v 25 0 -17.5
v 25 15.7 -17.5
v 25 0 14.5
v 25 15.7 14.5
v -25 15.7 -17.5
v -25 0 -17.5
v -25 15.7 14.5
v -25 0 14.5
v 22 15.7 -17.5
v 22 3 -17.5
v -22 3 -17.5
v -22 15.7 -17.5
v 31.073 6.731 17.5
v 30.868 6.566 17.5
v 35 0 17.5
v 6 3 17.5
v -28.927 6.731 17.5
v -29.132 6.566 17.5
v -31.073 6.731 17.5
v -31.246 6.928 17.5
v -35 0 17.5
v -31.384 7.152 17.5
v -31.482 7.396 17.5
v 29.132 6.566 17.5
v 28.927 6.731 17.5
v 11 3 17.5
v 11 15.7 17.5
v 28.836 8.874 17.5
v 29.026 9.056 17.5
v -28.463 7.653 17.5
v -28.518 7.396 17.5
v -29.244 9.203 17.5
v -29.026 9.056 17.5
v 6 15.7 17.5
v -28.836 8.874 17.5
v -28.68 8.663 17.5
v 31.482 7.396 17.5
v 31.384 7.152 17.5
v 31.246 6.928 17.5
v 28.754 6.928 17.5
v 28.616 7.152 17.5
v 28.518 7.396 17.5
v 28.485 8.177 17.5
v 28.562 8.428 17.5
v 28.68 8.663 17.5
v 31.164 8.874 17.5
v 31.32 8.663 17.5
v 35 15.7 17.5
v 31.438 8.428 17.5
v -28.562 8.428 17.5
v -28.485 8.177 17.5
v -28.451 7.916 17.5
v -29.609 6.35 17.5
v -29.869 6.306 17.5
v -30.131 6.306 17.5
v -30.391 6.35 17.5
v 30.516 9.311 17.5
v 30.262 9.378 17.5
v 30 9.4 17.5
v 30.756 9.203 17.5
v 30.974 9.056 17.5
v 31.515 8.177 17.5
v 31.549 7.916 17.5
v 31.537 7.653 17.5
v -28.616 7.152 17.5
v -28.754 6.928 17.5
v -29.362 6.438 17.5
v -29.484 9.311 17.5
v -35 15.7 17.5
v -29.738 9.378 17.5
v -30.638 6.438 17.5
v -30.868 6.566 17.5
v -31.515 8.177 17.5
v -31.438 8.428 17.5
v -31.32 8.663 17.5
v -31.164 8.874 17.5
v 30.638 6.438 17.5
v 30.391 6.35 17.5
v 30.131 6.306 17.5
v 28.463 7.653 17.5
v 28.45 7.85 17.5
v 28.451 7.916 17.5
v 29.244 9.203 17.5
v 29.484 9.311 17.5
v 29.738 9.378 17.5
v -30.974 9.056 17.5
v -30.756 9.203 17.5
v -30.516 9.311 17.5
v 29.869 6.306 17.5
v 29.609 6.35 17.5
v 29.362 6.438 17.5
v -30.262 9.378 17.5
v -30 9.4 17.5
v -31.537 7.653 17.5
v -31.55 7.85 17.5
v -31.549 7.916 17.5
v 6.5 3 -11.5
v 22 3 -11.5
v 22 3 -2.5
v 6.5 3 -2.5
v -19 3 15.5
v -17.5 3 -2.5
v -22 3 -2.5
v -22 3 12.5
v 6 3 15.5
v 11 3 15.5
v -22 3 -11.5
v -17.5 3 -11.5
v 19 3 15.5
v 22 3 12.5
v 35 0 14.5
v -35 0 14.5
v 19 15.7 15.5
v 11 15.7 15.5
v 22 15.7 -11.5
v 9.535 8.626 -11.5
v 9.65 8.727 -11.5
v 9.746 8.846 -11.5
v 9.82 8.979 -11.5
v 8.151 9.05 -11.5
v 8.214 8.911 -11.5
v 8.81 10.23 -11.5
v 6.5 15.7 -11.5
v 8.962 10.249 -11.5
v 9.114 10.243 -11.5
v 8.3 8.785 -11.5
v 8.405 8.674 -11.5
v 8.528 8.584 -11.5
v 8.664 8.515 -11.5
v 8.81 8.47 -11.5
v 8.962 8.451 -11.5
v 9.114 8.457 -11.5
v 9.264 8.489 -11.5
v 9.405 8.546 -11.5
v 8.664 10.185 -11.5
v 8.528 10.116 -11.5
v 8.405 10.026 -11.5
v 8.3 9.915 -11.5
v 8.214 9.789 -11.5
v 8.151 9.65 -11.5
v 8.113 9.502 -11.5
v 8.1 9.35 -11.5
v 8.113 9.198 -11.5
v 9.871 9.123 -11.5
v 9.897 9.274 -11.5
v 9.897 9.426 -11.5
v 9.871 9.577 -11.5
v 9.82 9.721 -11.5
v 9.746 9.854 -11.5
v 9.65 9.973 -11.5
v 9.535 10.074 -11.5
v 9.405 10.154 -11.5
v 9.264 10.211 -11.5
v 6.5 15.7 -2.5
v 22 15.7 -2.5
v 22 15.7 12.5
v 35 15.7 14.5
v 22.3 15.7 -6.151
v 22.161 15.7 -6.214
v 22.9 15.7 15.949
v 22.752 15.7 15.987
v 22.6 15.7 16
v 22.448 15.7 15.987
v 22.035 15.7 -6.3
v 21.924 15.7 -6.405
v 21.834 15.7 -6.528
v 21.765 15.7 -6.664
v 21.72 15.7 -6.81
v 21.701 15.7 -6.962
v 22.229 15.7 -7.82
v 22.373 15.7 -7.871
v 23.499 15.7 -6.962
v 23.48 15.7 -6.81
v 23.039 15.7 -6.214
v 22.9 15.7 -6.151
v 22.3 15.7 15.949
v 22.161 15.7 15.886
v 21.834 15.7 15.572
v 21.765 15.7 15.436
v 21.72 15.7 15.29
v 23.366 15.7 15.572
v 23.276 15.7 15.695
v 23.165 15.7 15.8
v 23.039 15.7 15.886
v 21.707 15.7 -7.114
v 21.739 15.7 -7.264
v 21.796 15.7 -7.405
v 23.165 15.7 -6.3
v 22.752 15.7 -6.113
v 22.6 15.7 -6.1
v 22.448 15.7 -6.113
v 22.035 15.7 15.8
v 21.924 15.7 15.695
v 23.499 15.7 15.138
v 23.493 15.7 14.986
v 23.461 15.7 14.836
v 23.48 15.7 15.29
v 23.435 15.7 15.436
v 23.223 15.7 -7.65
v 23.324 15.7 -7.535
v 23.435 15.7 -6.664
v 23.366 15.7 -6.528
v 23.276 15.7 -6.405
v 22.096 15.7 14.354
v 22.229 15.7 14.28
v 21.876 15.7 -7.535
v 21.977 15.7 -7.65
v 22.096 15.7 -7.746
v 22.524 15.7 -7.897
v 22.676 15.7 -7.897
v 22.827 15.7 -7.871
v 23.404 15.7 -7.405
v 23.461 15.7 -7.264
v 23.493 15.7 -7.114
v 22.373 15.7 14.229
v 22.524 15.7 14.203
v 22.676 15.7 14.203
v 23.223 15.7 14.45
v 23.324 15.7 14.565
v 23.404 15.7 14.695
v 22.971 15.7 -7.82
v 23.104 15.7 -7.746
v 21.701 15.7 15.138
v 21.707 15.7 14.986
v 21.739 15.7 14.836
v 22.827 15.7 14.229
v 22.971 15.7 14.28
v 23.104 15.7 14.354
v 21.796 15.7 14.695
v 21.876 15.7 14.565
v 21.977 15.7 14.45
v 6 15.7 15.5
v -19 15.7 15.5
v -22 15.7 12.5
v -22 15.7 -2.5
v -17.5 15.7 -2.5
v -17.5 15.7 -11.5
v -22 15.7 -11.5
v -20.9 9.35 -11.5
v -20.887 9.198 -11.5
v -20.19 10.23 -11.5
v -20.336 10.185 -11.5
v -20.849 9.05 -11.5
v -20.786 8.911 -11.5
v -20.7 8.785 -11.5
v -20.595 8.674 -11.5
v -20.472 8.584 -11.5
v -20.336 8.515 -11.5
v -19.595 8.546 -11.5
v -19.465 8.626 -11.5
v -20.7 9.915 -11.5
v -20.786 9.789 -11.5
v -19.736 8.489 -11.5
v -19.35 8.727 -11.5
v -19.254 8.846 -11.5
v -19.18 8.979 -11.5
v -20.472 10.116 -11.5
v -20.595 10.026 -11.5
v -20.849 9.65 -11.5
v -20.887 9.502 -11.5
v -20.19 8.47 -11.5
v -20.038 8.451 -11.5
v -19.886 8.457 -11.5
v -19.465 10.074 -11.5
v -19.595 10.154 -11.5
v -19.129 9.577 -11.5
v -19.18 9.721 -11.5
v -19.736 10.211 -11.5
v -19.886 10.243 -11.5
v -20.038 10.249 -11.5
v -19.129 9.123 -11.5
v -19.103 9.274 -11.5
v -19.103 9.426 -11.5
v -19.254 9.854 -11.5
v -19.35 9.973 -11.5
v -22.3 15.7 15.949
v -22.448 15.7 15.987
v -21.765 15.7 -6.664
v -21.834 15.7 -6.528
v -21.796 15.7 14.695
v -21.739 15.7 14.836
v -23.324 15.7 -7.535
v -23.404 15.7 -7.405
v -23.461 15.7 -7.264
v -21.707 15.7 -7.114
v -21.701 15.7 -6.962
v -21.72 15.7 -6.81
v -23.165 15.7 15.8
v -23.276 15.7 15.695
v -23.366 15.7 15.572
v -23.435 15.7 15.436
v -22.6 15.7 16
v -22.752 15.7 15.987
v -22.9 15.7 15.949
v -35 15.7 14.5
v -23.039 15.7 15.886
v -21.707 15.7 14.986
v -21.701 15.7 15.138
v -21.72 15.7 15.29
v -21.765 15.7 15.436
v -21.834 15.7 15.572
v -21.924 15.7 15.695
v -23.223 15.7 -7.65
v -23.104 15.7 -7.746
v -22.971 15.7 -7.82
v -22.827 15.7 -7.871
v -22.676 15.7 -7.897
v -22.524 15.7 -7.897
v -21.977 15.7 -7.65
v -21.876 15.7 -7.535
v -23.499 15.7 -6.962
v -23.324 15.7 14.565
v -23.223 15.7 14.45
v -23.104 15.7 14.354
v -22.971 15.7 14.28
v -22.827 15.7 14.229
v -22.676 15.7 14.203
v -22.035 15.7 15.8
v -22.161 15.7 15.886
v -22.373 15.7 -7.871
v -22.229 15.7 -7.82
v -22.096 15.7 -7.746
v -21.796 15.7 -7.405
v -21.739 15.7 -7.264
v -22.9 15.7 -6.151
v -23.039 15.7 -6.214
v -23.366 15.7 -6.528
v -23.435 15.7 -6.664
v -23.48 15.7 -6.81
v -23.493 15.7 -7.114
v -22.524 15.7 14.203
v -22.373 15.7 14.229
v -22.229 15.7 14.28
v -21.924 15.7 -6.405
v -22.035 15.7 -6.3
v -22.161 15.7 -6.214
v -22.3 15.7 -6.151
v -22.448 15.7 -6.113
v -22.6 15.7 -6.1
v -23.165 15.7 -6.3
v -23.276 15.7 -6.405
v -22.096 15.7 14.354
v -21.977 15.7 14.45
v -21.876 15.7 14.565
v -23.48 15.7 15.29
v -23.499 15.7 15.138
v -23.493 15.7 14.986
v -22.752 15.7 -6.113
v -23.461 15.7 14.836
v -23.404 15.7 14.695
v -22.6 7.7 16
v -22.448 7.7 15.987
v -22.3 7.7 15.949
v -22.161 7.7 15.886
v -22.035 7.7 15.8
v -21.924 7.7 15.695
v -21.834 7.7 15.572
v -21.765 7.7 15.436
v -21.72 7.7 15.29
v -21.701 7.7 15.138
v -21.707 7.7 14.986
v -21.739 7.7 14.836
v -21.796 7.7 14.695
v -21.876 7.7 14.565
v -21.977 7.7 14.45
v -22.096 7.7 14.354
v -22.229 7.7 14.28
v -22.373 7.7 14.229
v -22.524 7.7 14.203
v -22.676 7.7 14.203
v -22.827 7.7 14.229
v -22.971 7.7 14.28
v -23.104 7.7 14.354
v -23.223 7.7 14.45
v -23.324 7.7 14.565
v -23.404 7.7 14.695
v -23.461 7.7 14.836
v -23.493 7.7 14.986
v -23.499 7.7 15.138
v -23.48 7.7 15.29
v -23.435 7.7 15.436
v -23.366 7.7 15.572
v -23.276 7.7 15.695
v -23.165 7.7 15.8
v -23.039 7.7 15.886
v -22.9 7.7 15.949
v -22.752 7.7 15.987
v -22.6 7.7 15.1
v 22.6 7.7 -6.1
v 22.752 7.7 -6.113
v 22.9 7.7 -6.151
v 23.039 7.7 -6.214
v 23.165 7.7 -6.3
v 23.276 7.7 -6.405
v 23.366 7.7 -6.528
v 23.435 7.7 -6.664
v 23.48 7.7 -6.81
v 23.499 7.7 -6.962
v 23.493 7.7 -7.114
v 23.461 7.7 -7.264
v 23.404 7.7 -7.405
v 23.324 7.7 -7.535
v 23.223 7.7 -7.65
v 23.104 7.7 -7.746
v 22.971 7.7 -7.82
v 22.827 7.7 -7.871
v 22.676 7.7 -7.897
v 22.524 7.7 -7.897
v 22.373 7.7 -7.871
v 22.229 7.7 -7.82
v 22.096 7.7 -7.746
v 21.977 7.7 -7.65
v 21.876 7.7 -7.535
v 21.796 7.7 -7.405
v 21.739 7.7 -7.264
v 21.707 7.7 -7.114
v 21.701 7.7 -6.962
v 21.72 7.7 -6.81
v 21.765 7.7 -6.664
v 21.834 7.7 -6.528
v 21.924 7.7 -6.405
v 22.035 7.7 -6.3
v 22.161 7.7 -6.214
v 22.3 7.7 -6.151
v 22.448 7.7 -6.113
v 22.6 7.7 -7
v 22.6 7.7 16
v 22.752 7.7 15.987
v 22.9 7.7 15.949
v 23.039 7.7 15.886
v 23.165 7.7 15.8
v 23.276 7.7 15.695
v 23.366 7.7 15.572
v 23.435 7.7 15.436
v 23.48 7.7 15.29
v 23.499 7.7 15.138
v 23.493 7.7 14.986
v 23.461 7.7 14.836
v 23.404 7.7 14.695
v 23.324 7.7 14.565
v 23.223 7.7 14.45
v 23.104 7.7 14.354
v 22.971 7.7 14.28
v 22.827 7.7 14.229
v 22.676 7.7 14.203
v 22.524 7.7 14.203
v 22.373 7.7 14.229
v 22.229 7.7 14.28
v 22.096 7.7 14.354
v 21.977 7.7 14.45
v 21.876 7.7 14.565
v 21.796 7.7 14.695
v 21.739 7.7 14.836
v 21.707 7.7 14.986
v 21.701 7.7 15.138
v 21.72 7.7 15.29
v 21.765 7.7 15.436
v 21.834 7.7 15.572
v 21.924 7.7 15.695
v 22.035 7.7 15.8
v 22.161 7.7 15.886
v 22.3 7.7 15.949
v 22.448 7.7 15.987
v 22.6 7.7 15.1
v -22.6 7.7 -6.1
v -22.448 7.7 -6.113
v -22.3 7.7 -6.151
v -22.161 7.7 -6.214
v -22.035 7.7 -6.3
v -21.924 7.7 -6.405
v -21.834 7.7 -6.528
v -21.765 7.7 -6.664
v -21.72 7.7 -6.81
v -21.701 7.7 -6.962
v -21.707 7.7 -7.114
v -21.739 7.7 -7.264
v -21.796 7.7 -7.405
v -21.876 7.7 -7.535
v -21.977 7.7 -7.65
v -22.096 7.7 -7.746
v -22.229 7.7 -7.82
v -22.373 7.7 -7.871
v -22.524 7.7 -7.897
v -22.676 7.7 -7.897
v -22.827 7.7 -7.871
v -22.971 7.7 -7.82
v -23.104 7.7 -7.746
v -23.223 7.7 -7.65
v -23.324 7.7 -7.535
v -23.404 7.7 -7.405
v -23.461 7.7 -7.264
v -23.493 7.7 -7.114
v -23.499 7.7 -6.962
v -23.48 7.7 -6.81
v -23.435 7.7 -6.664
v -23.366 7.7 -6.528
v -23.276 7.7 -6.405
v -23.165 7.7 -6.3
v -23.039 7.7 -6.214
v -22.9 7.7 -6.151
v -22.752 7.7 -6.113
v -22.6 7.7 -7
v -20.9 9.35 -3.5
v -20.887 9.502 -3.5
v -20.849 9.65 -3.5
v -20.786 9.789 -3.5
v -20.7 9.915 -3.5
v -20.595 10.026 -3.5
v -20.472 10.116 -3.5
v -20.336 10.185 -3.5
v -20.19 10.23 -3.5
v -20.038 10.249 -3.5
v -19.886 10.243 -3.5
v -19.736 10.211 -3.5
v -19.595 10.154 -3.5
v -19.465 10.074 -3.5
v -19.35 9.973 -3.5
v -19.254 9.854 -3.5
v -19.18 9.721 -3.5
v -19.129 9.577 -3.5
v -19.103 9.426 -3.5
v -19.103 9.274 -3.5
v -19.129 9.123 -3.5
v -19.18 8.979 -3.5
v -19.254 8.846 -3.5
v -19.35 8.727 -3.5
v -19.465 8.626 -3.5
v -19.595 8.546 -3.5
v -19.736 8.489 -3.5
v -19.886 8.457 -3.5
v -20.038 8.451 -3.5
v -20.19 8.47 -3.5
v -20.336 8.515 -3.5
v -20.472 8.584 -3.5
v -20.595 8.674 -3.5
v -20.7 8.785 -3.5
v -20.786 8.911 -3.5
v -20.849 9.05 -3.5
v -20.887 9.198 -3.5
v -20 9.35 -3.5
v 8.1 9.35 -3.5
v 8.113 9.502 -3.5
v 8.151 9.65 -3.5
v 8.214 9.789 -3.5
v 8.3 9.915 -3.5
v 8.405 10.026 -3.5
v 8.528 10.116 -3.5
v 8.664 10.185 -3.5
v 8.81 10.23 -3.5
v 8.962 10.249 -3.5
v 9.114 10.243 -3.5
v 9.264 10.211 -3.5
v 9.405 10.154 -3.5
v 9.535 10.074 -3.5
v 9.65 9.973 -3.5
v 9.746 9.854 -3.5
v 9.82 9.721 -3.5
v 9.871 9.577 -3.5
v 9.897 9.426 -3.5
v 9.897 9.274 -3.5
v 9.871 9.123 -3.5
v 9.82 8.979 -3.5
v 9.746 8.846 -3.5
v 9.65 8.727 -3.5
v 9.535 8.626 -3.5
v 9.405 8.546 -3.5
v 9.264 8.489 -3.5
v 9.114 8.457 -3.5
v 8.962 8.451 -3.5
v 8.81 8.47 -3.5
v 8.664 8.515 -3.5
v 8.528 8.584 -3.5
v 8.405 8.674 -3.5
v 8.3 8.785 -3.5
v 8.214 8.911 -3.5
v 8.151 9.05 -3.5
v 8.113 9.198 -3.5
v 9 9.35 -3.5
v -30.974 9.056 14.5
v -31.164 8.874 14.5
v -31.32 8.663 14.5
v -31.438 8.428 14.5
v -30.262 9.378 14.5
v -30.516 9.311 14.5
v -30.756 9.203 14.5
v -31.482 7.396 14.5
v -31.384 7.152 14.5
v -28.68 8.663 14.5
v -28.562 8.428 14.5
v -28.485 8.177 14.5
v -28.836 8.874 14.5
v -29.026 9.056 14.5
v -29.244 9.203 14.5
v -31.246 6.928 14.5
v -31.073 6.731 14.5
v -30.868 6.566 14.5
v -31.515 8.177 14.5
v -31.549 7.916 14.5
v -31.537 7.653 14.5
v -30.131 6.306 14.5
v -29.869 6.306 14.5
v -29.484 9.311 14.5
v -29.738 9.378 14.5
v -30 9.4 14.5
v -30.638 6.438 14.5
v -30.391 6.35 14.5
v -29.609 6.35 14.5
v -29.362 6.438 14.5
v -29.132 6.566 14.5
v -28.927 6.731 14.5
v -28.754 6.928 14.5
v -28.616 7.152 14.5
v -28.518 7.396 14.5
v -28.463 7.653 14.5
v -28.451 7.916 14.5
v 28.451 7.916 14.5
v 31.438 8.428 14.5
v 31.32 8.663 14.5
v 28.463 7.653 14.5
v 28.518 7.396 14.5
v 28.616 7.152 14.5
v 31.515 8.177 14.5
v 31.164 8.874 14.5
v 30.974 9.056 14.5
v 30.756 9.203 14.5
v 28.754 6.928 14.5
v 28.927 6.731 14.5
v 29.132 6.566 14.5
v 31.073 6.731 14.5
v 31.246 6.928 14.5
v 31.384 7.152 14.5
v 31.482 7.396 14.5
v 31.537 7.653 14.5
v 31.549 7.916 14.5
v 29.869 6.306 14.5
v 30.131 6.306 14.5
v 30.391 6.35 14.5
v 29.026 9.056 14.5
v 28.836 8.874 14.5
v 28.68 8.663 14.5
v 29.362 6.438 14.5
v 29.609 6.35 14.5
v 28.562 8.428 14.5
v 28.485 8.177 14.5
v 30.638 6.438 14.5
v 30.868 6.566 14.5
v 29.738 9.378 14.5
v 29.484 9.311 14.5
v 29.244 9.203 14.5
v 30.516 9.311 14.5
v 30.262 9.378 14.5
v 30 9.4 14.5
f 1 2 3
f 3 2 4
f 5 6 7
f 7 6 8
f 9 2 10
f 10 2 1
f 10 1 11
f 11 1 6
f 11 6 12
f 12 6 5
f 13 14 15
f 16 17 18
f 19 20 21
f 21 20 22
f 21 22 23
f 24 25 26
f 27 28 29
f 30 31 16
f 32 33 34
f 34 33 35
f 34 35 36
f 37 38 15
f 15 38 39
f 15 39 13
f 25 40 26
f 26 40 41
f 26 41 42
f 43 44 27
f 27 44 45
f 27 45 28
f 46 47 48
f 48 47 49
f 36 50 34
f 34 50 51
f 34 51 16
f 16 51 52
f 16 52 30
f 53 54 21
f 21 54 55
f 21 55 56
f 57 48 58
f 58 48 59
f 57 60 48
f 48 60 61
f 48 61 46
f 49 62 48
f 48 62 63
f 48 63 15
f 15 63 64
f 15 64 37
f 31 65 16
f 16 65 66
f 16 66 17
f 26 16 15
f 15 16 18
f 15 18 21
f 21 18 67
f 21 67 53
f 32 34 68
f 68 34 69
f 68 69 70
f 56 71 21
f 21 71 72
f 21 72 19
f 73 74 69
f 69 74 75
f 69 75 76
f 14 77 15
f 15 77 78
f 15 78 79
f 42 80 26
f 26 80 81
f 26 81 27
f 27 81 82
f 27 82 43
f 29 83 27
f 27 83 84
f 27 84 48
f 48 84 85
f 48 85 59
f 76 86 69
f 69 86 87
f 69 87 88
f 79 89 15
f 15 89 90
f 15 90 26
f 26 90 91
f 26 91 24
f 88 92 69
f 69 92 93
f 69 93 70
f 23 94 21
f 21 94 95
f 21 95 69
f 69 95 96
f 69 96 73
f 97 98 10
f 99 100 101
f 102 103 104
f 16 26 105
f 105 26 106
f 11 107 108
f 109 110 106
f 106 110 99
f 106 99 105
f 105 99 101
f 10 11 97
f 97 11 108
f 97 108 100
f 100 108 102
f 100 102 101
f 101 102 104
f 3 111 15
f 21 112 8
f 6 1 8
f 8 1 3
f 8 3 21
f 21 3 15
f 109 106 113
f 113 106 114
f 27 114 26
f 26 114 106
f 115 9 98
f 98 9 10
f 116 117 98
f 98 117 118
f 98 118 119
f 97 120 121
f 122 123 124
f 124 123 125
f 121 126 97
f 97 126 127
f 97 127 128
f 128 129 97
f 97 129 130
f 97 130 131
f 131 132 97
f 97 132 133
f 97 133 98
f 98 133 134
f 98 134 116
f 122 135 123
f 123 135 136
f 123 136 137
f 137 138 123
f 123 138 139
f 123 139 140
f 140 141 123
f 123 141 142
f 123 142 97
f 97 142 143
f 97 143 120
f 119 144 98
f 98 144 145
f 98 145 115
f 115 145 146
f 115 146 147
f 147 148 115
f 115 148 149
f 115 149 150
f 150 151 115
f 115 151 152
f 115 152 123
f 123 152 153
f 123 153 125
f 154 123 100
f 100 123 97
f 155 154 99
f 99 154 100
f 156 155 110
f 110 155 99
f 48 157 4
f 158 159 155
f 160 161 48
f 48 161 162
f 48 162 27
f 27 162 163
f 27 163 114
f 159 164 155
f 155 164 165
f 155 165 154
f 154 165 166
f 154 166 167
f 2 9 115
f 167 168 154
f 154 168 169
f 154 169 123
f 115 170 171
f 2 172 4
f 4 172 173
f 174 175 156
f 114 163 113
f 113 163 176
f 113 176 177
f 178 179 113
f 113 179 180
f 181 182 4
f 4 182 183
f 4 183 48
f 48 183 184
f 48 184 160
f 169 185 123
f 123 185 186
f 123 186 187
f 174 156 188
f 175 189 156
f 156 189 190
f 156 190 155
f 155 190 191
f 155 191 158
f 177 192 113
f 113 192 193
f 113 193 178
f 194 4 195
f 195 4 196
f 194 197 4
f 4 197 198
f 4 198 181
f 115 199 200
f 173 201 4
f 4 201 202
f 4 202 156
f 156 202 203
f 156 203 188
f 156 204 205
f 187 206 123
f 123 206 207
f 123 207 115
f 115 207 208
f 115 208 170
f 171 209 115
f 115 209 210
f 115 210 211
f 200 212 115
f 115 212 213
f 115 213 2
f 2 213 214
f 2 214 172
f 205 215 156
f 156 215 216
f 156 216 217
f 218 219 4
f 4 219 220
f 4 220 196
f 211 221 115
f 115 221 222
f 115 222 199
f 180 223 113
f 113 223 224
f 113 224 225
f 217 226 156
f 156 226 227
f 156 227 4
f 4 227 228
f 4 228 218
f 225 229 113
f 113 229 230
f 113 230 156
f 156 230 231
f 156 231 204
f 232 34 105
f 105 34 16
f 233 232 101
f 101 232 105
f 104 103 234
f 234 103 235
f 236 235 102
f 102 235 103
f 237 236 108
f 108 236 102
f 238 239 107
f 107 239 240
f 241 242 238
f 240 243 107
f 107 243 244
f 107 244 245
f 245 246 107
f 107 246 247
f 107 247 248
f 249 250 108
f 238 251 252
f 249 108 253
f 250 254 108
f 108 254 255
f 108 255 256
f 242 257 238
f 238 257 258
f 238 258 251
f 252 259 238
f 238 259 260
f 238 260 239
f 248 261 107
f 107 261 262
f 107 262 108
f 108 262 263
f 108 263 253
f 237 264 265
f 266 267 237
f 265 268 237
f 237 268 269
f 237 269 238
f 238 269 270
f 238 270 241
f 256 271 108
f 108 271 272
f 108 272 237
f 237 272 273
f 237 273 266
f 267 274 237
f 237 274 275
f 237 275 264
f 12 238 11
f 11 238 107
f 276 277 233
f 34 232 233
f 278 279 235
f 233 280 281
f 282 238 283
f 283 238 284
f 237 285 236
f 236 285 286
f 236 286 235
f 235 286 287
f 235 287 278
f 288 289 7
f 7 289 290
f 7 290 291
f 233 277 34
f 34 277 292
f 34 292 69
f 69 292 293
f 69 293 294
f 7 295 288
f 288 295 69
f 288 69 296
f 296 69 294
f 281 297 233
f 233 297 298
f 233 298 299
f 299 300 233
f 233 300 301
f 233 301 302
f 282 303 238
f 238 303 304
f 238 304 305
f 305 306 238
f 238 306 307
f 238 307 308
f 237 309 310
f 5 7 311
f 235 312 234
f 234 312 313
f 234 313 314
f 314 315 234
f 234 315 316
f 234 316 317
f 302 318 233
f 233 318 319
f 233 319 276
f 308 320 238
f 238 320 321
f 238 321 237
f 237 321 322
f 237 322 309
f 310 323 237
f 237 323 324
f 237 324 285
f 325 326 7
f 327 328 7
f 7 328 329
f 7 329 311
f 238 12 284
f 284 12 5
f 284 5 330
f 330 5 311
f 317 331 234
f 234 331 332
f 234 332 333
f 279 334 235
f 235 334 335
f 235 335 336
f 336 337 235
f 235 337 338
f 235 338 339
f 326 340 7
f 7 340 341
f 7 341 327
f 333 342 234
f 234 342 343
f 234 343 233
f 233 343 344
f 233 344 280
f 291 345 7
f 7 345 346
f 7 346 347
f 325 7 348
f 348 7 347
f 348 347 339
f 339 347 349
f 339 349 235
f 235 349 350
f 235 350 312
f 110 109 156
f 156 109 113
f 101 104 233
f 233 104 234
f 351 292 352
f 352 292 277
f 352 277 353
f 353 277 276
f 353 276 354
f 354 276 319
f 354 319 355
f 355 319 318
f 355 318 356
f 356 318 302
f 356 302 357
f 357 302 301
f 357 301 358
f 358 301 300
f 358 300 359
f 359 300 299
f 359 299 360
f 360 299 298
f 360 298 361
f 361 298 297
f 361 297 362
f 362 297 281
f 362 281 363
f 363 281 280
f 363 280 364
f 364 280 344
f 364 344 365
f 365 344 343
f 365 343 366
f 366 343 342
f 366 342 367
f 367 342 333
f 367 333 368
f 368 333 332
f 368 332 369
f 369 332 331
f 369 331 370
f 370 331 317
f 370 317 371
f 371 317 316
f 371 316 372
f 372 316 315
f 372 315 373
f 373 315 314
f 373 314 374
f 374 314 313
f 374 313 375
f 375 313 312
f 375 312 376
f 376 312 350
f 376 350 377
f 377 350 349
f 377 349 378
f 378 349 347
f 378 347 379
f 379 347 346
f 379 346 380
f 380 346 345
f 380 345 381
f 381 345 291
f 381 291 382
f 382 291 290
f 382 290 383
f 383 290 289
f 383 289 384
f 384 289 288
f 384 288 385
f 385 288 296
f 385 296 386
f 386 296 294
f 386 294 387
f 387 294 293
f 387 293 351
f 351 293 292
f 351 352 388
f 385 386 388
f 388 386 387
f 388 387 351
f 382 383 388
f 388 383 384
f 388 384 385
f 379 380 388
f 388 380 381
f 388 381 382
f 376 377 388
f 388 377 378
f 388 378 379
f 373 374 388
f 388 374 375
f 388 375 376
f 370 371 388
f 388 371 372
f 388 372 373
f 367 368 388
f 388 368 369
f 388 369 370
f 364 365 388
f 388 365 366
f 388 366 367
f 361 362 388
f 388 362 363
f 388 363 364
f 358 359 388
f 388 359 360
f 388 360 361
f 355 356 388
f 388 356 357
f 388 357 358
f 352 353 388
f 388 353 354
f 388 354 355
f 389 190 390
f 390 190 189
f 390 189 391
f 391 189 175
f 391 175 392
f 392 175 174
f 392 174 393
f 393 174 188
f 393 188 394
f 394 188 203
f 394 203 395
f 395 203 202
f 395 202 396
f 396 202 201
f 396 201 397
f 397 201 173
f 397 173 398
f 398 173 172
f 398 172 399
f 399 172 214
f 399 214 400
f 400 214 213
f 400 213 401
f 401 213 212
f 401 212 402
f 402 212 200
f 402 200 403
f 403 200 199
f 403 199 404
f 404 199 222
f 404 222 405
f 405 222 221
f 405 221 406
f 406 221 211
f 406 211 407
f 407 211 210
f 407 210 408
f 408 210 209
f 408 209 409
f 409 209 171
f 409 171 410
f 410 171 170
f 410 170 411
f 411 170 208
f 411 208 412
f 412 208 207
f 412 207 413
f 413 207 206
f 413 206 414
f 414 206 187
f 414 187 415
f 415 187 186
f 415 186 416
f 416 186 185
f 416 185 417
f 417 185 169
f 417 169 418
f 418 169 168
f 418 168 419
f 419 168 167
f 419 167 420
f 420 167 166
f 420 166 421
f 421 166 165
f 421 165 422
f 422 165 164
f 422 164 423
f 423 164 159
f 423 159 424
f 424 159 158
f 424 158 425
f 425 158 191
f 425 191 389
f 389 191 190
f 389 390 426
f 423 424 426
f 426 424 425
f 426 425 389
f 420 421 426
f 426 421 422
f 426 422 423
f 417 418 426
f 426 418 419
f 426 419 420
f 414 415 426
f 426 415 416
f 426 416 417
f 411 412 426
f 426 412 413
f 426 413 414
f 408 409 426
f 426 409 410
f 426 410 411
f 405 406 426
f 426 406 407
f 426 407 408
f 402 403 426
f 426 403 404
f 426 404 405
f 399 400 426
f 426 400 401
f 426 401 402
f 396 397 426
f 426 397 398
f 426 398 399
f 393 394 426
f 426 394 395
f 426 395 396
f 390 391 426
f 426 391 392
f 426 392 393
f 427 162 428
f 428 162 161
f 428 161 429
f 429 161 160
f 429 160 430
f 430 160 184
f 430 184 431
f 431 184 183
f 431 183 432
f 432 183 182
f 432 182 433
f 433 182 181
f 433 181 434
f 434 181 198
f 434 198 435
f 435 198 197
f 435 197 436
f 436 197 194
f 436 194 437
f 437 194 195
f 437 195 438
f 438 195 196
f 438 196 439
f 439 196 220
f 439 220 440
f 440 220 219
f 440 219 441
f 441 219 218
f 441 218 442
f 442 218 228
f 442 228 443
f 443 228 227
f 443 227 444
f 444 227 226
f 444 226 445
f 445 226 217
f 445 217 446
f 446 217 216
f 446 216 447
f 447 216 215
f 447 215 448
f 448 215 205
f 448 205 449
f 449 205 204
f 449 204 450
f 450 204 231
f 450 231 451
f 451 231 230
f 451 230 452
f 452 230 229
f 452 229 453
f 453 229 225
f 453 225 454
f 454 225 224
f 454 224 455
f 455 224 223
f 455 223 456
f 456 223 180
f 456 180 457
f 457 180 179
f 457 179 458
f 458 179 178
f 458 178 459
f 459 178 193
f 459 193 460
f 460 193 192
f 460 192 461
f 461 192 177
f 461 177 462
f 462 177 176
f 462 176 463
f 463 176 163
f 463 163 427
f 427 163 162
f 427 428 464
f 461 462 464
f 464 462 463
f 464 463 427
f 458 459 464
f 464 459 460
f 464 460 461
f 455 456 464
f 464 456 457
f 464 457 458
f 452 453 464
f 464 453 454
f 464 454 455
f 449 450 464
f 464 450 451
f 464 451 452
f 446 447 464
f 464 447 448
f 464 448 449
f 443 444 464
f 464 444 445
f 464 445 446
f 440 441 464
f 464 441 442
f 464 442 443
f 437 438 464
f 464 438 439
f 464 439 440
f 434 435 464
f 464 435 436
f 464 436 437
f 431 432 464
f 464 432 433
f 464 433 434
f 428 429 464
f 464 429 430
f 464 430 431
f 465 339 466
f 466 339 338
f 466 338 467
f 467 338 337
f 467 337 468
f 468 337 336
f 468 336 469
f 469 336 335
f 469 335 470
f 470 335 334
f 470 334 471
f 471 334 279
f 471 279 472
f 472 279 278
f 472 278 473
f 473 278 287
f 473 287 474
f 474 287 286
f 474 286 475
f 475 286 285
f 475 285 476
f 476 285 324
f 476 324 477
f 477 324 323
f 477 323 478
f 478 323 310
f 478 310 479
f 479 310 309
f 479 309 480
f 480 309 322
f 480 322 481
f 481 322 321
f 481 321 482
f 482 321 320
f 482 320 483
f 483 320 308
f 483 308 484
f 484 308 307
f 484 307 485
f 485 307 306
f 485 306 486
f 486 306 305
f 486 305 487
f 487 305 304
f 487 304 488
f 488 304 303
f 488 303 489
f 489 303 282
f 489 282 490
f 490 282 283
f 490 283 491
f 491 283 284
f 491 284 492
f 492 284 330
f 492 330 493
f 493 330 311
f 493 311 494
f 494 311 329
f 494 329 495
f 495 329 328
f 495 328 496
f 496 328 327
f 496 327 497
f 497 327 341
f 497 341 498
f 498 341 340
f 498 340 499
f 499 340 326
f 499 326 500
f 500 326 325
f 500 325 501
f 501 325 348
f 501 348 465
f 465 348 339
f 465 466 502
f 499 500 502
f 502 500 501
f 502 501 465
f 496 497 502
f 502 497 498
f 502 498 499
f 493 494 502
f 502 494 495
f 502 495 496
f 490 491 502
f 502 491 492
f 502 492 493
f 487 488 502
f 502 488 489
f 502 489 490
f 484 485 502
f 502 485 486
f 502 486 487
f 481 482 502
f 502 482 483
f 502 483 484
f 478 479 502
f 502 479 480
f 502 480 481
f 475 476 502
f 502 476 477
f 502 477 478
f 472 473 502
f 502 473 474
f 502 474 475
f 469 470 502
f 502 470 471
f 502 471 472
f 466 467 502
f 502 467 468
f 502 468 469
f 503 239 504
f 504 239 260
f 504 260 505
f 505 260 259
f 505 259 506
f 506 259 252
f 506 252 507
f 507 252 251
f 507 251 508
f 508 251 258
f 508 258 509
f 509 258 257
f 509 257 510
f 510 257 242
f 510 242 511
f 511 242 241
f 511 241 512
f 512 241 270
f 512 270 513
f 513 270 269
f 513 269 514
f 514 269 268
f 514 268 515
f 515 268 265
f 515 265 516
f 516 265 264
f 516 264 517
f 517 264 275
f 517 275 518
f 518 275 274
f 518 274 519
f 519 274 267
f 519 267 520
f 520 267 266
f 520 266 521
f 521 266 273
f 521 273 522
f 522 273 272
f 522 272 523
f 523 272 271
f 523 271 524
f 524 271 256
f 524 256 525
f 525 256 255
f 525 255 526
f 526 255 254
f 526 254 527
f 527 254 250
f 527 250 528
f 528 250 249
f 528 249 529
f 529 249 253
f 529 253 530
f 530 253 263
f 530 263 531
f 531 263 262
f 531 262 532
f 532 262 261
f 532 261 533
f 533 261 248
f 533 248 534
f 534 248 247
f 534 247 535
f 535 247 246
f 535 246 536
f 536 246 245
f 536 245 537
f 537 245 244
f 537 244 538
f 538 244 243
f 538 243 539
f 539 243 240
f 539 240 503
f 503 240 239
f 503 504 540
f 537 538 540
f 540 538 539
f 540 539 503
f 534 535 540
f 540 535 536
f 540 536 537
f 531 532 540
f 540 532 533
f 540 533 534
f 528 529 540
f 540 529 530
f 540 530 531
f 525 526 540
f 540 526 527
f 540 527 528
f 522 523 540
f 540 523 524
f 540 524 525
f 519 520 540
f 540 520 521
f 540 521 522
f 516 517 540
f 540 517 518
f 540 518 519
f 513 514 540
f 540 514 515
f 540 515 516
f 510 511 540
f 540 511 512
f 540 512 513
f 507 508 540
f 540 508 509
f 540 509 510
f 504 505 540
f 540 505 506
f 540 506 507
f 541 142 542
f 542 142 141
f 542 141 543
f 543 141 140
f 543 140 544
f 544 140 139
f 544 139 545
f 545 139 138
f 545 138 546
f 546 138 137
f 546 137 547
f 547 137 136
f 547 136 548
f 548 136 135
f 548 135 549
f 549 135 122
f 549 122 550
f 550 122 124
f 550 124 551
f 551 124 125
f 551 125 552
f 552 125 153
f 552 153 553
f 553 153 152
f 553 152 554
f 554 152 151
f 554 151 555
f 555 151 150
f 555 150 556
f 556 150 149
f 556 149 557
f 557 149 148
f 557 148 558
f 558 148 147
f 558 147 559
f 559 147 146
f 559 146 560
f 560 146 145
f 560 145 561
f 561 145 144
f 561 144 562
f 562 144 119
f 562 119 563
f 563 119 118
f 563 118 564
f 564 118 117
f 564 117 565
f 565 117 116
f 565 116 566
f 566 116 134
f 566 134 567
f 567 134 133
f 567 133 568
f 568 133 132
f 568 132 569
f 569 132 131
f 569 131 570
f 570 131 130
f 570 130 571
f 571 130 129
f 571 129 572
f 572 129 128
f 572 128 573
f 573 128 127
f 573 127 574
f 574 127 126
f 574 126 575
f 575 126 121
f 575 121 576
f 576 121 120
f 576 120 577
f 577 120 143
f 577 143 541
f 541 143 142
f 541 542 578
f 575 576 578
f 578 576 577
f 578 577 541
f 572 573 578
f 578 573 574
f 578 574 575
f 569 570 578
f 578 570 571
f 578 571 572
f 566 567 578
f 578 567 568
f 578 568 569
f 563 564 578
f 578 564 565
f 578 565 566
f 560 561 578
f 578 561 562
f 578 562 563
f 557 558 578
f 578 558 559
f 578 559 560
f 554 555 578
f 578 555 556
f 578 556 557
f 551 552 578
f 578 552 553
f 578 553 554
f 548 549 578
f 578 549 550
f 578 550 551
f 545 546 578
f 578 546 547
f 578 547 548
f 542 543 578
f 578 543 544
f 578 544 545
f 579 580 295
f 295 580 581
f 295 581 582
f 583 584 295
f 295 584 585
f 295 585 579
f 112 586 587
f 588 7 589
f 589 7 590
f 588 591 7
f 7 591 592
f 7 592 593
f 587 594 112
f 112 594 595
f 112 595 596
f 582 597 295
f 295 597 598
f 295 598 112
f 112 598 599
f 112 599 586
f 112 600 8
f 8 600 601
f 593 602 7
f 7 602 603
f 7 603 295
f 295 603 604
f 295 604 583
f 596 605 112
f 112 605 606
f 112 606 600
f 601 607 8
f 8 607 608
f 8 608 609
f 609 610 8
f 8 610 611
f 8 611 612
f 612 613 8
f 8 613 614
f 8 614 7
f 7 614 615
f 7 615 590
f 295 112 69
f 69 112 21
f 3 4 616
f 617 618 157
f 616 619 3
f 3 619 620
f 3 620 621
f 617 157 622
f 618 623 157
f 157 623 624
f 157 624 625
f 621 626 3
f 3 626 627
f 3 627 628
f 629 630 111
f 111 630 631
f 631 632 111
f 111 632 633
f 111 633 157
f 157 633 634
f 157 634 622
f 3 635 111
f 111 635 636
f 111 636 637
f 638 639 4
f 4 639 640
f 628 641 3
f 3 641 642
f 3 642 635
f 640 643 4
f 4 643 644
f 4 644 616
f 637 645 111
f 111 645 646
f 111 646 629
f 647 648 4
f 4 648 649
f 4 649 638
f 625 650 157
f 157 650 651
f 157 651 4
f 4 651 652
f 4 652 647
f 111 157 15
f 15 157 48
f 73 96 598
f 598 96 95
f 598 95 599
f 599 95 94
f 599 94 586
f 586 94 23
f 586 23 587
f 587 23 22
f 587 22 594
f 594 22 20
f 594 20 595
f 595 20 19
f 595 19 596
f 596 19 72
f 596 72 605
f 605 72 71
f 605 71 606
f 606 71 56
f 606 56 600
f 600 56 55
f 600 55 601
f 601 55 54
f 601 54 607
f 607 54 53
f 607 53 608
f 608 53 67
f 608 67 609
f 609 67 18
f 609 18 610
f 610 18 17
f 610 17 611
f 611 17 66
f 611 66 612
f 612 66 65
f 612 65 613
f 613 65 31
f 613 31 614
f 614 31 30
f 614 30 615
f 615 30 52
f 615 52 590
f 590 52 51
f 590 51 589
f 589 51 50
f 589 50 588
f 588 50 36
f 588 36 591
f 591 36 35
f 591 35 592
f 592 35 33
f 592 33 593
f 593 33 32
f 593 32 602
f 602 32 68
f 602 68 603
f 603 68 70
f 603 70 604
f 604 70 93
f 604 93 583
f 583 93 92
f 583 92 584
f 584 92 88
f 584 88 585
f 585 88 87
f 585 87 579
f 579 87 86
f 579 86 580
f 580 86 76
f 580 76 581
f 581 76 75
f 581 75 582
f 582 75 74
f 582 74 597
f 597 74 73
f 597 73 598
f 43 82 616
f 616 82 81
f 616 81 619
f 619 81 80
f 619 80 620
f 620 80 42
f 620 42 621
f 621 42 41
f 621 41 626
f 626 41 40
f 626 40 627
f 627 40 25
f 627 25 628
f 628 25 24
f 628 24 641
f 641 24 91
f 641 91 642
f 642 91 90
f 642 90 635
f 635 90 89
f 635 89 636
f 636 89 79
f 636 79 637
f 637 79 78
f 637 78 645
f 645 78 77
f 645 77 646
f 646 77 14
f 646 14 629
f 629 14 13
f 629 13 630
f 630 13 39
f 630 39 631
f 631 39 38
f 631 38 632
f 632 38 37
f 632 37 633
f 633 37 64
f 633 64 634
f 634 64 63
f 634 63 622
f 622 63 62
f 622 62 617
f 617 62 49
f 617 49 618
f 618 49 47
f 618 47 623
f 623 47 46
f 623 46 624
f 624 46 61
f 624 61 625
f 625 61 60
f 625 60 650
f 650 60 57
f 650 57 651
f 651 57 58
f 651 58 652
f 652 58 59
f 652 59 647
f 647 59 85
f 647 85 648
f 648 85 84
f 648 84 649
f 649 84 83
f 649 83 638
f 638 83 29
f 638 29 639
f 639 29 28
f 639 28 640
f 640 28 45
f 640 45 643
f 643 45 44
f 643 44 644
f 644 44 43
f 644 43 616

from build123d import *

# Parameters (mm, degrees)
SKETCH1_W           = 50
SKETCH1_H           = 35
BOSS_EXTRUDE1_DEPTH = 3
BOSS_EXTRUDE2_DEPTH = 12.7
CHAMFER1_SIZE       = 3
SKETCH3_R           = 0.9
CUT_EXTRUDE1_DEPTH  = 8
SKETCH4_R           = 0.9
CUT_EXTRUDE2_DEPTH  = 8
SKETCH5_R           = 0.9
CUT_EXTRUDE3_DEPTH  = 8
SKETCH6_W           = 3
SKETCH6_H           = 15.7
BOSS_EXTRUDE3_DEPTH = 10
SKETCH7_W           = 3
SKETCH7_H           = 15.7
BOSS_EXTRUDE4_DEPTH = 10
SKETCH8_R           = 1.55
CUT_EXTRUDE4_DEPTH  = 10


with BuildPart() as part:
    # Sketch1 → Boss-Extrude1 (new body)
    with BuildSketch(Plane(origin=(0, 0, 0), x_dir=(1, 0, 0), z_dir=(0, 1, 0))):
        Rectangle(SKETCH1_W, SKETCH1_H)
    extrude(amount=BOSS_EXTRUDE1_DEPTH)

    # Sketch2 → Boss-Extrude2 (add)
    with BuildSketch(Plane(origin=(0, 3, 0), x_dir=(1, 0, 0), z_dir=(0, 1, 0))):
        Polygon((25, 17.5), (22, 17.5), (22, 11.5), (6.5, 11.5), (6.5, 2.5), (22, 2.5), (22, -15.5), (11, -15.5), (11, -17.5), (22, -17.5), (25, -17.5), (25, 2.5), (25, 11.5), align=None)
        Polygon((-17.5, 11.5), (-22, 11.5), (-22, 17.5), (-25, 17.5), (-25, 11.5), (-25, 2.5), (-25, -17.5), (-22, -17.5), (6, -17.5), (6, -15.5), (-22, -15.5), (-22, 2.5), (-17.5, 2.5), align=None)
    extrude(amount=BOSS_EXTRUDE2_DEPTH)

    # Chamfer1
    chamfer1_edges = [part.edges().sort_by_distance(p)[0] for p in [
        (22, 9.35, 15.5),
        (-22, 9.35, 15.5),
    ]]
    chamfer(chamfer1_edges, length=CHAMFER1_SIZE)

    # Sketch3 → Cut-Extrude1 (cut)
    with BuildSketch(Plane(origin=(0, 15.7, 0), x_dir=(1, 0, 0), z_dir=(0, 1, 0))):
        with Locations(Location((-22.6, -15.1, 0), (0, 0, 270))):
            Circle(SKETCH3_R)
        with Locations(Location((22.6, -15.1, 0), (0, 0, 270))):
            Circle(SKETCH3_R)
        with Locations(Location((22.6, 7, 0), (0, 0, 270))):
            Circle(SKETCH3_R)
    extrude(amount=-CUT_EXTRUDE1_DEPTH, mode=Mode.SUBTRACT)

    # Sketch4 → Cut-Extrude2 (cut)
    with BuildSketch(Plane(origin=(0, 15.7, 0), x_dir=(1, 0, 0), z_dir=(0, 1, 0))):
        with Locations(Location((-22.6, 7, 0), (0, 0, 270))):
            Circle(SKETCH4_R)
    extrude(amount=-CUT_EXTRUDE2_DEPTH, mode=Mode.SUBTRACT)

    # Sketch5 → Cut-Extrude3 (cut)
    with BuildSketch(Plane(origin=(0, 0, -11.5), x_dir=(-1, 0, 0), z_dir=(0, 0, -1))):
        with Locations((20, 9.35)):
            Circle(SKETCH5_R)
        with Locations((-9, 9.35)):
            Circle(SKETCH5_R)
    extrude(amount=-CUT_EXTRUDE3_DEPTH, mode=Mode.SUBTRACT)

    # Sketch6 → Boss-Extrude3 (add)
    with BuildSketch(Plane.ZY.offset(25)):
        with Locations((16, 7.85)):
            Rectangle(SKETCH6_W, SKETCH6_H)
    extrude(amount=BOSS_EXTRUDE3_DEPTH)

    # Sketch7 → Boss-Extrude4 (add)
    with BuildSketch(Plane(origin=(25, 0, 0), x_dir=(0, 0, -1), z_dir=(1, 0, 0))):
        with Locations((-16, 7.85)):
            Rectangle(SKETCH7_W, SKETCH7_H)
    extrude(amount=BOSS_EXTRUDE4_DEPTH)

    # Sketch8 → Cut-Extrude4 (cut)
    with BuildSketch(Plane(origin=(0, 0, 14.5), x_dir=(-1, 0, 0), z_dir=(0, 0, -1))):
        with Locations(Location((30, 7.85, 0), (0, 0, 90))):
            Circle(SKETCH8_R)
        with Locations(Location((-30, 7.85, 0), (0, 0, 90))):
            Circle(SKETCH8_R)
    extrude(amount=-CUT_EXTRUDE4_DEPTH, mode=Mode.SUBTRACT)


solid = part.part
